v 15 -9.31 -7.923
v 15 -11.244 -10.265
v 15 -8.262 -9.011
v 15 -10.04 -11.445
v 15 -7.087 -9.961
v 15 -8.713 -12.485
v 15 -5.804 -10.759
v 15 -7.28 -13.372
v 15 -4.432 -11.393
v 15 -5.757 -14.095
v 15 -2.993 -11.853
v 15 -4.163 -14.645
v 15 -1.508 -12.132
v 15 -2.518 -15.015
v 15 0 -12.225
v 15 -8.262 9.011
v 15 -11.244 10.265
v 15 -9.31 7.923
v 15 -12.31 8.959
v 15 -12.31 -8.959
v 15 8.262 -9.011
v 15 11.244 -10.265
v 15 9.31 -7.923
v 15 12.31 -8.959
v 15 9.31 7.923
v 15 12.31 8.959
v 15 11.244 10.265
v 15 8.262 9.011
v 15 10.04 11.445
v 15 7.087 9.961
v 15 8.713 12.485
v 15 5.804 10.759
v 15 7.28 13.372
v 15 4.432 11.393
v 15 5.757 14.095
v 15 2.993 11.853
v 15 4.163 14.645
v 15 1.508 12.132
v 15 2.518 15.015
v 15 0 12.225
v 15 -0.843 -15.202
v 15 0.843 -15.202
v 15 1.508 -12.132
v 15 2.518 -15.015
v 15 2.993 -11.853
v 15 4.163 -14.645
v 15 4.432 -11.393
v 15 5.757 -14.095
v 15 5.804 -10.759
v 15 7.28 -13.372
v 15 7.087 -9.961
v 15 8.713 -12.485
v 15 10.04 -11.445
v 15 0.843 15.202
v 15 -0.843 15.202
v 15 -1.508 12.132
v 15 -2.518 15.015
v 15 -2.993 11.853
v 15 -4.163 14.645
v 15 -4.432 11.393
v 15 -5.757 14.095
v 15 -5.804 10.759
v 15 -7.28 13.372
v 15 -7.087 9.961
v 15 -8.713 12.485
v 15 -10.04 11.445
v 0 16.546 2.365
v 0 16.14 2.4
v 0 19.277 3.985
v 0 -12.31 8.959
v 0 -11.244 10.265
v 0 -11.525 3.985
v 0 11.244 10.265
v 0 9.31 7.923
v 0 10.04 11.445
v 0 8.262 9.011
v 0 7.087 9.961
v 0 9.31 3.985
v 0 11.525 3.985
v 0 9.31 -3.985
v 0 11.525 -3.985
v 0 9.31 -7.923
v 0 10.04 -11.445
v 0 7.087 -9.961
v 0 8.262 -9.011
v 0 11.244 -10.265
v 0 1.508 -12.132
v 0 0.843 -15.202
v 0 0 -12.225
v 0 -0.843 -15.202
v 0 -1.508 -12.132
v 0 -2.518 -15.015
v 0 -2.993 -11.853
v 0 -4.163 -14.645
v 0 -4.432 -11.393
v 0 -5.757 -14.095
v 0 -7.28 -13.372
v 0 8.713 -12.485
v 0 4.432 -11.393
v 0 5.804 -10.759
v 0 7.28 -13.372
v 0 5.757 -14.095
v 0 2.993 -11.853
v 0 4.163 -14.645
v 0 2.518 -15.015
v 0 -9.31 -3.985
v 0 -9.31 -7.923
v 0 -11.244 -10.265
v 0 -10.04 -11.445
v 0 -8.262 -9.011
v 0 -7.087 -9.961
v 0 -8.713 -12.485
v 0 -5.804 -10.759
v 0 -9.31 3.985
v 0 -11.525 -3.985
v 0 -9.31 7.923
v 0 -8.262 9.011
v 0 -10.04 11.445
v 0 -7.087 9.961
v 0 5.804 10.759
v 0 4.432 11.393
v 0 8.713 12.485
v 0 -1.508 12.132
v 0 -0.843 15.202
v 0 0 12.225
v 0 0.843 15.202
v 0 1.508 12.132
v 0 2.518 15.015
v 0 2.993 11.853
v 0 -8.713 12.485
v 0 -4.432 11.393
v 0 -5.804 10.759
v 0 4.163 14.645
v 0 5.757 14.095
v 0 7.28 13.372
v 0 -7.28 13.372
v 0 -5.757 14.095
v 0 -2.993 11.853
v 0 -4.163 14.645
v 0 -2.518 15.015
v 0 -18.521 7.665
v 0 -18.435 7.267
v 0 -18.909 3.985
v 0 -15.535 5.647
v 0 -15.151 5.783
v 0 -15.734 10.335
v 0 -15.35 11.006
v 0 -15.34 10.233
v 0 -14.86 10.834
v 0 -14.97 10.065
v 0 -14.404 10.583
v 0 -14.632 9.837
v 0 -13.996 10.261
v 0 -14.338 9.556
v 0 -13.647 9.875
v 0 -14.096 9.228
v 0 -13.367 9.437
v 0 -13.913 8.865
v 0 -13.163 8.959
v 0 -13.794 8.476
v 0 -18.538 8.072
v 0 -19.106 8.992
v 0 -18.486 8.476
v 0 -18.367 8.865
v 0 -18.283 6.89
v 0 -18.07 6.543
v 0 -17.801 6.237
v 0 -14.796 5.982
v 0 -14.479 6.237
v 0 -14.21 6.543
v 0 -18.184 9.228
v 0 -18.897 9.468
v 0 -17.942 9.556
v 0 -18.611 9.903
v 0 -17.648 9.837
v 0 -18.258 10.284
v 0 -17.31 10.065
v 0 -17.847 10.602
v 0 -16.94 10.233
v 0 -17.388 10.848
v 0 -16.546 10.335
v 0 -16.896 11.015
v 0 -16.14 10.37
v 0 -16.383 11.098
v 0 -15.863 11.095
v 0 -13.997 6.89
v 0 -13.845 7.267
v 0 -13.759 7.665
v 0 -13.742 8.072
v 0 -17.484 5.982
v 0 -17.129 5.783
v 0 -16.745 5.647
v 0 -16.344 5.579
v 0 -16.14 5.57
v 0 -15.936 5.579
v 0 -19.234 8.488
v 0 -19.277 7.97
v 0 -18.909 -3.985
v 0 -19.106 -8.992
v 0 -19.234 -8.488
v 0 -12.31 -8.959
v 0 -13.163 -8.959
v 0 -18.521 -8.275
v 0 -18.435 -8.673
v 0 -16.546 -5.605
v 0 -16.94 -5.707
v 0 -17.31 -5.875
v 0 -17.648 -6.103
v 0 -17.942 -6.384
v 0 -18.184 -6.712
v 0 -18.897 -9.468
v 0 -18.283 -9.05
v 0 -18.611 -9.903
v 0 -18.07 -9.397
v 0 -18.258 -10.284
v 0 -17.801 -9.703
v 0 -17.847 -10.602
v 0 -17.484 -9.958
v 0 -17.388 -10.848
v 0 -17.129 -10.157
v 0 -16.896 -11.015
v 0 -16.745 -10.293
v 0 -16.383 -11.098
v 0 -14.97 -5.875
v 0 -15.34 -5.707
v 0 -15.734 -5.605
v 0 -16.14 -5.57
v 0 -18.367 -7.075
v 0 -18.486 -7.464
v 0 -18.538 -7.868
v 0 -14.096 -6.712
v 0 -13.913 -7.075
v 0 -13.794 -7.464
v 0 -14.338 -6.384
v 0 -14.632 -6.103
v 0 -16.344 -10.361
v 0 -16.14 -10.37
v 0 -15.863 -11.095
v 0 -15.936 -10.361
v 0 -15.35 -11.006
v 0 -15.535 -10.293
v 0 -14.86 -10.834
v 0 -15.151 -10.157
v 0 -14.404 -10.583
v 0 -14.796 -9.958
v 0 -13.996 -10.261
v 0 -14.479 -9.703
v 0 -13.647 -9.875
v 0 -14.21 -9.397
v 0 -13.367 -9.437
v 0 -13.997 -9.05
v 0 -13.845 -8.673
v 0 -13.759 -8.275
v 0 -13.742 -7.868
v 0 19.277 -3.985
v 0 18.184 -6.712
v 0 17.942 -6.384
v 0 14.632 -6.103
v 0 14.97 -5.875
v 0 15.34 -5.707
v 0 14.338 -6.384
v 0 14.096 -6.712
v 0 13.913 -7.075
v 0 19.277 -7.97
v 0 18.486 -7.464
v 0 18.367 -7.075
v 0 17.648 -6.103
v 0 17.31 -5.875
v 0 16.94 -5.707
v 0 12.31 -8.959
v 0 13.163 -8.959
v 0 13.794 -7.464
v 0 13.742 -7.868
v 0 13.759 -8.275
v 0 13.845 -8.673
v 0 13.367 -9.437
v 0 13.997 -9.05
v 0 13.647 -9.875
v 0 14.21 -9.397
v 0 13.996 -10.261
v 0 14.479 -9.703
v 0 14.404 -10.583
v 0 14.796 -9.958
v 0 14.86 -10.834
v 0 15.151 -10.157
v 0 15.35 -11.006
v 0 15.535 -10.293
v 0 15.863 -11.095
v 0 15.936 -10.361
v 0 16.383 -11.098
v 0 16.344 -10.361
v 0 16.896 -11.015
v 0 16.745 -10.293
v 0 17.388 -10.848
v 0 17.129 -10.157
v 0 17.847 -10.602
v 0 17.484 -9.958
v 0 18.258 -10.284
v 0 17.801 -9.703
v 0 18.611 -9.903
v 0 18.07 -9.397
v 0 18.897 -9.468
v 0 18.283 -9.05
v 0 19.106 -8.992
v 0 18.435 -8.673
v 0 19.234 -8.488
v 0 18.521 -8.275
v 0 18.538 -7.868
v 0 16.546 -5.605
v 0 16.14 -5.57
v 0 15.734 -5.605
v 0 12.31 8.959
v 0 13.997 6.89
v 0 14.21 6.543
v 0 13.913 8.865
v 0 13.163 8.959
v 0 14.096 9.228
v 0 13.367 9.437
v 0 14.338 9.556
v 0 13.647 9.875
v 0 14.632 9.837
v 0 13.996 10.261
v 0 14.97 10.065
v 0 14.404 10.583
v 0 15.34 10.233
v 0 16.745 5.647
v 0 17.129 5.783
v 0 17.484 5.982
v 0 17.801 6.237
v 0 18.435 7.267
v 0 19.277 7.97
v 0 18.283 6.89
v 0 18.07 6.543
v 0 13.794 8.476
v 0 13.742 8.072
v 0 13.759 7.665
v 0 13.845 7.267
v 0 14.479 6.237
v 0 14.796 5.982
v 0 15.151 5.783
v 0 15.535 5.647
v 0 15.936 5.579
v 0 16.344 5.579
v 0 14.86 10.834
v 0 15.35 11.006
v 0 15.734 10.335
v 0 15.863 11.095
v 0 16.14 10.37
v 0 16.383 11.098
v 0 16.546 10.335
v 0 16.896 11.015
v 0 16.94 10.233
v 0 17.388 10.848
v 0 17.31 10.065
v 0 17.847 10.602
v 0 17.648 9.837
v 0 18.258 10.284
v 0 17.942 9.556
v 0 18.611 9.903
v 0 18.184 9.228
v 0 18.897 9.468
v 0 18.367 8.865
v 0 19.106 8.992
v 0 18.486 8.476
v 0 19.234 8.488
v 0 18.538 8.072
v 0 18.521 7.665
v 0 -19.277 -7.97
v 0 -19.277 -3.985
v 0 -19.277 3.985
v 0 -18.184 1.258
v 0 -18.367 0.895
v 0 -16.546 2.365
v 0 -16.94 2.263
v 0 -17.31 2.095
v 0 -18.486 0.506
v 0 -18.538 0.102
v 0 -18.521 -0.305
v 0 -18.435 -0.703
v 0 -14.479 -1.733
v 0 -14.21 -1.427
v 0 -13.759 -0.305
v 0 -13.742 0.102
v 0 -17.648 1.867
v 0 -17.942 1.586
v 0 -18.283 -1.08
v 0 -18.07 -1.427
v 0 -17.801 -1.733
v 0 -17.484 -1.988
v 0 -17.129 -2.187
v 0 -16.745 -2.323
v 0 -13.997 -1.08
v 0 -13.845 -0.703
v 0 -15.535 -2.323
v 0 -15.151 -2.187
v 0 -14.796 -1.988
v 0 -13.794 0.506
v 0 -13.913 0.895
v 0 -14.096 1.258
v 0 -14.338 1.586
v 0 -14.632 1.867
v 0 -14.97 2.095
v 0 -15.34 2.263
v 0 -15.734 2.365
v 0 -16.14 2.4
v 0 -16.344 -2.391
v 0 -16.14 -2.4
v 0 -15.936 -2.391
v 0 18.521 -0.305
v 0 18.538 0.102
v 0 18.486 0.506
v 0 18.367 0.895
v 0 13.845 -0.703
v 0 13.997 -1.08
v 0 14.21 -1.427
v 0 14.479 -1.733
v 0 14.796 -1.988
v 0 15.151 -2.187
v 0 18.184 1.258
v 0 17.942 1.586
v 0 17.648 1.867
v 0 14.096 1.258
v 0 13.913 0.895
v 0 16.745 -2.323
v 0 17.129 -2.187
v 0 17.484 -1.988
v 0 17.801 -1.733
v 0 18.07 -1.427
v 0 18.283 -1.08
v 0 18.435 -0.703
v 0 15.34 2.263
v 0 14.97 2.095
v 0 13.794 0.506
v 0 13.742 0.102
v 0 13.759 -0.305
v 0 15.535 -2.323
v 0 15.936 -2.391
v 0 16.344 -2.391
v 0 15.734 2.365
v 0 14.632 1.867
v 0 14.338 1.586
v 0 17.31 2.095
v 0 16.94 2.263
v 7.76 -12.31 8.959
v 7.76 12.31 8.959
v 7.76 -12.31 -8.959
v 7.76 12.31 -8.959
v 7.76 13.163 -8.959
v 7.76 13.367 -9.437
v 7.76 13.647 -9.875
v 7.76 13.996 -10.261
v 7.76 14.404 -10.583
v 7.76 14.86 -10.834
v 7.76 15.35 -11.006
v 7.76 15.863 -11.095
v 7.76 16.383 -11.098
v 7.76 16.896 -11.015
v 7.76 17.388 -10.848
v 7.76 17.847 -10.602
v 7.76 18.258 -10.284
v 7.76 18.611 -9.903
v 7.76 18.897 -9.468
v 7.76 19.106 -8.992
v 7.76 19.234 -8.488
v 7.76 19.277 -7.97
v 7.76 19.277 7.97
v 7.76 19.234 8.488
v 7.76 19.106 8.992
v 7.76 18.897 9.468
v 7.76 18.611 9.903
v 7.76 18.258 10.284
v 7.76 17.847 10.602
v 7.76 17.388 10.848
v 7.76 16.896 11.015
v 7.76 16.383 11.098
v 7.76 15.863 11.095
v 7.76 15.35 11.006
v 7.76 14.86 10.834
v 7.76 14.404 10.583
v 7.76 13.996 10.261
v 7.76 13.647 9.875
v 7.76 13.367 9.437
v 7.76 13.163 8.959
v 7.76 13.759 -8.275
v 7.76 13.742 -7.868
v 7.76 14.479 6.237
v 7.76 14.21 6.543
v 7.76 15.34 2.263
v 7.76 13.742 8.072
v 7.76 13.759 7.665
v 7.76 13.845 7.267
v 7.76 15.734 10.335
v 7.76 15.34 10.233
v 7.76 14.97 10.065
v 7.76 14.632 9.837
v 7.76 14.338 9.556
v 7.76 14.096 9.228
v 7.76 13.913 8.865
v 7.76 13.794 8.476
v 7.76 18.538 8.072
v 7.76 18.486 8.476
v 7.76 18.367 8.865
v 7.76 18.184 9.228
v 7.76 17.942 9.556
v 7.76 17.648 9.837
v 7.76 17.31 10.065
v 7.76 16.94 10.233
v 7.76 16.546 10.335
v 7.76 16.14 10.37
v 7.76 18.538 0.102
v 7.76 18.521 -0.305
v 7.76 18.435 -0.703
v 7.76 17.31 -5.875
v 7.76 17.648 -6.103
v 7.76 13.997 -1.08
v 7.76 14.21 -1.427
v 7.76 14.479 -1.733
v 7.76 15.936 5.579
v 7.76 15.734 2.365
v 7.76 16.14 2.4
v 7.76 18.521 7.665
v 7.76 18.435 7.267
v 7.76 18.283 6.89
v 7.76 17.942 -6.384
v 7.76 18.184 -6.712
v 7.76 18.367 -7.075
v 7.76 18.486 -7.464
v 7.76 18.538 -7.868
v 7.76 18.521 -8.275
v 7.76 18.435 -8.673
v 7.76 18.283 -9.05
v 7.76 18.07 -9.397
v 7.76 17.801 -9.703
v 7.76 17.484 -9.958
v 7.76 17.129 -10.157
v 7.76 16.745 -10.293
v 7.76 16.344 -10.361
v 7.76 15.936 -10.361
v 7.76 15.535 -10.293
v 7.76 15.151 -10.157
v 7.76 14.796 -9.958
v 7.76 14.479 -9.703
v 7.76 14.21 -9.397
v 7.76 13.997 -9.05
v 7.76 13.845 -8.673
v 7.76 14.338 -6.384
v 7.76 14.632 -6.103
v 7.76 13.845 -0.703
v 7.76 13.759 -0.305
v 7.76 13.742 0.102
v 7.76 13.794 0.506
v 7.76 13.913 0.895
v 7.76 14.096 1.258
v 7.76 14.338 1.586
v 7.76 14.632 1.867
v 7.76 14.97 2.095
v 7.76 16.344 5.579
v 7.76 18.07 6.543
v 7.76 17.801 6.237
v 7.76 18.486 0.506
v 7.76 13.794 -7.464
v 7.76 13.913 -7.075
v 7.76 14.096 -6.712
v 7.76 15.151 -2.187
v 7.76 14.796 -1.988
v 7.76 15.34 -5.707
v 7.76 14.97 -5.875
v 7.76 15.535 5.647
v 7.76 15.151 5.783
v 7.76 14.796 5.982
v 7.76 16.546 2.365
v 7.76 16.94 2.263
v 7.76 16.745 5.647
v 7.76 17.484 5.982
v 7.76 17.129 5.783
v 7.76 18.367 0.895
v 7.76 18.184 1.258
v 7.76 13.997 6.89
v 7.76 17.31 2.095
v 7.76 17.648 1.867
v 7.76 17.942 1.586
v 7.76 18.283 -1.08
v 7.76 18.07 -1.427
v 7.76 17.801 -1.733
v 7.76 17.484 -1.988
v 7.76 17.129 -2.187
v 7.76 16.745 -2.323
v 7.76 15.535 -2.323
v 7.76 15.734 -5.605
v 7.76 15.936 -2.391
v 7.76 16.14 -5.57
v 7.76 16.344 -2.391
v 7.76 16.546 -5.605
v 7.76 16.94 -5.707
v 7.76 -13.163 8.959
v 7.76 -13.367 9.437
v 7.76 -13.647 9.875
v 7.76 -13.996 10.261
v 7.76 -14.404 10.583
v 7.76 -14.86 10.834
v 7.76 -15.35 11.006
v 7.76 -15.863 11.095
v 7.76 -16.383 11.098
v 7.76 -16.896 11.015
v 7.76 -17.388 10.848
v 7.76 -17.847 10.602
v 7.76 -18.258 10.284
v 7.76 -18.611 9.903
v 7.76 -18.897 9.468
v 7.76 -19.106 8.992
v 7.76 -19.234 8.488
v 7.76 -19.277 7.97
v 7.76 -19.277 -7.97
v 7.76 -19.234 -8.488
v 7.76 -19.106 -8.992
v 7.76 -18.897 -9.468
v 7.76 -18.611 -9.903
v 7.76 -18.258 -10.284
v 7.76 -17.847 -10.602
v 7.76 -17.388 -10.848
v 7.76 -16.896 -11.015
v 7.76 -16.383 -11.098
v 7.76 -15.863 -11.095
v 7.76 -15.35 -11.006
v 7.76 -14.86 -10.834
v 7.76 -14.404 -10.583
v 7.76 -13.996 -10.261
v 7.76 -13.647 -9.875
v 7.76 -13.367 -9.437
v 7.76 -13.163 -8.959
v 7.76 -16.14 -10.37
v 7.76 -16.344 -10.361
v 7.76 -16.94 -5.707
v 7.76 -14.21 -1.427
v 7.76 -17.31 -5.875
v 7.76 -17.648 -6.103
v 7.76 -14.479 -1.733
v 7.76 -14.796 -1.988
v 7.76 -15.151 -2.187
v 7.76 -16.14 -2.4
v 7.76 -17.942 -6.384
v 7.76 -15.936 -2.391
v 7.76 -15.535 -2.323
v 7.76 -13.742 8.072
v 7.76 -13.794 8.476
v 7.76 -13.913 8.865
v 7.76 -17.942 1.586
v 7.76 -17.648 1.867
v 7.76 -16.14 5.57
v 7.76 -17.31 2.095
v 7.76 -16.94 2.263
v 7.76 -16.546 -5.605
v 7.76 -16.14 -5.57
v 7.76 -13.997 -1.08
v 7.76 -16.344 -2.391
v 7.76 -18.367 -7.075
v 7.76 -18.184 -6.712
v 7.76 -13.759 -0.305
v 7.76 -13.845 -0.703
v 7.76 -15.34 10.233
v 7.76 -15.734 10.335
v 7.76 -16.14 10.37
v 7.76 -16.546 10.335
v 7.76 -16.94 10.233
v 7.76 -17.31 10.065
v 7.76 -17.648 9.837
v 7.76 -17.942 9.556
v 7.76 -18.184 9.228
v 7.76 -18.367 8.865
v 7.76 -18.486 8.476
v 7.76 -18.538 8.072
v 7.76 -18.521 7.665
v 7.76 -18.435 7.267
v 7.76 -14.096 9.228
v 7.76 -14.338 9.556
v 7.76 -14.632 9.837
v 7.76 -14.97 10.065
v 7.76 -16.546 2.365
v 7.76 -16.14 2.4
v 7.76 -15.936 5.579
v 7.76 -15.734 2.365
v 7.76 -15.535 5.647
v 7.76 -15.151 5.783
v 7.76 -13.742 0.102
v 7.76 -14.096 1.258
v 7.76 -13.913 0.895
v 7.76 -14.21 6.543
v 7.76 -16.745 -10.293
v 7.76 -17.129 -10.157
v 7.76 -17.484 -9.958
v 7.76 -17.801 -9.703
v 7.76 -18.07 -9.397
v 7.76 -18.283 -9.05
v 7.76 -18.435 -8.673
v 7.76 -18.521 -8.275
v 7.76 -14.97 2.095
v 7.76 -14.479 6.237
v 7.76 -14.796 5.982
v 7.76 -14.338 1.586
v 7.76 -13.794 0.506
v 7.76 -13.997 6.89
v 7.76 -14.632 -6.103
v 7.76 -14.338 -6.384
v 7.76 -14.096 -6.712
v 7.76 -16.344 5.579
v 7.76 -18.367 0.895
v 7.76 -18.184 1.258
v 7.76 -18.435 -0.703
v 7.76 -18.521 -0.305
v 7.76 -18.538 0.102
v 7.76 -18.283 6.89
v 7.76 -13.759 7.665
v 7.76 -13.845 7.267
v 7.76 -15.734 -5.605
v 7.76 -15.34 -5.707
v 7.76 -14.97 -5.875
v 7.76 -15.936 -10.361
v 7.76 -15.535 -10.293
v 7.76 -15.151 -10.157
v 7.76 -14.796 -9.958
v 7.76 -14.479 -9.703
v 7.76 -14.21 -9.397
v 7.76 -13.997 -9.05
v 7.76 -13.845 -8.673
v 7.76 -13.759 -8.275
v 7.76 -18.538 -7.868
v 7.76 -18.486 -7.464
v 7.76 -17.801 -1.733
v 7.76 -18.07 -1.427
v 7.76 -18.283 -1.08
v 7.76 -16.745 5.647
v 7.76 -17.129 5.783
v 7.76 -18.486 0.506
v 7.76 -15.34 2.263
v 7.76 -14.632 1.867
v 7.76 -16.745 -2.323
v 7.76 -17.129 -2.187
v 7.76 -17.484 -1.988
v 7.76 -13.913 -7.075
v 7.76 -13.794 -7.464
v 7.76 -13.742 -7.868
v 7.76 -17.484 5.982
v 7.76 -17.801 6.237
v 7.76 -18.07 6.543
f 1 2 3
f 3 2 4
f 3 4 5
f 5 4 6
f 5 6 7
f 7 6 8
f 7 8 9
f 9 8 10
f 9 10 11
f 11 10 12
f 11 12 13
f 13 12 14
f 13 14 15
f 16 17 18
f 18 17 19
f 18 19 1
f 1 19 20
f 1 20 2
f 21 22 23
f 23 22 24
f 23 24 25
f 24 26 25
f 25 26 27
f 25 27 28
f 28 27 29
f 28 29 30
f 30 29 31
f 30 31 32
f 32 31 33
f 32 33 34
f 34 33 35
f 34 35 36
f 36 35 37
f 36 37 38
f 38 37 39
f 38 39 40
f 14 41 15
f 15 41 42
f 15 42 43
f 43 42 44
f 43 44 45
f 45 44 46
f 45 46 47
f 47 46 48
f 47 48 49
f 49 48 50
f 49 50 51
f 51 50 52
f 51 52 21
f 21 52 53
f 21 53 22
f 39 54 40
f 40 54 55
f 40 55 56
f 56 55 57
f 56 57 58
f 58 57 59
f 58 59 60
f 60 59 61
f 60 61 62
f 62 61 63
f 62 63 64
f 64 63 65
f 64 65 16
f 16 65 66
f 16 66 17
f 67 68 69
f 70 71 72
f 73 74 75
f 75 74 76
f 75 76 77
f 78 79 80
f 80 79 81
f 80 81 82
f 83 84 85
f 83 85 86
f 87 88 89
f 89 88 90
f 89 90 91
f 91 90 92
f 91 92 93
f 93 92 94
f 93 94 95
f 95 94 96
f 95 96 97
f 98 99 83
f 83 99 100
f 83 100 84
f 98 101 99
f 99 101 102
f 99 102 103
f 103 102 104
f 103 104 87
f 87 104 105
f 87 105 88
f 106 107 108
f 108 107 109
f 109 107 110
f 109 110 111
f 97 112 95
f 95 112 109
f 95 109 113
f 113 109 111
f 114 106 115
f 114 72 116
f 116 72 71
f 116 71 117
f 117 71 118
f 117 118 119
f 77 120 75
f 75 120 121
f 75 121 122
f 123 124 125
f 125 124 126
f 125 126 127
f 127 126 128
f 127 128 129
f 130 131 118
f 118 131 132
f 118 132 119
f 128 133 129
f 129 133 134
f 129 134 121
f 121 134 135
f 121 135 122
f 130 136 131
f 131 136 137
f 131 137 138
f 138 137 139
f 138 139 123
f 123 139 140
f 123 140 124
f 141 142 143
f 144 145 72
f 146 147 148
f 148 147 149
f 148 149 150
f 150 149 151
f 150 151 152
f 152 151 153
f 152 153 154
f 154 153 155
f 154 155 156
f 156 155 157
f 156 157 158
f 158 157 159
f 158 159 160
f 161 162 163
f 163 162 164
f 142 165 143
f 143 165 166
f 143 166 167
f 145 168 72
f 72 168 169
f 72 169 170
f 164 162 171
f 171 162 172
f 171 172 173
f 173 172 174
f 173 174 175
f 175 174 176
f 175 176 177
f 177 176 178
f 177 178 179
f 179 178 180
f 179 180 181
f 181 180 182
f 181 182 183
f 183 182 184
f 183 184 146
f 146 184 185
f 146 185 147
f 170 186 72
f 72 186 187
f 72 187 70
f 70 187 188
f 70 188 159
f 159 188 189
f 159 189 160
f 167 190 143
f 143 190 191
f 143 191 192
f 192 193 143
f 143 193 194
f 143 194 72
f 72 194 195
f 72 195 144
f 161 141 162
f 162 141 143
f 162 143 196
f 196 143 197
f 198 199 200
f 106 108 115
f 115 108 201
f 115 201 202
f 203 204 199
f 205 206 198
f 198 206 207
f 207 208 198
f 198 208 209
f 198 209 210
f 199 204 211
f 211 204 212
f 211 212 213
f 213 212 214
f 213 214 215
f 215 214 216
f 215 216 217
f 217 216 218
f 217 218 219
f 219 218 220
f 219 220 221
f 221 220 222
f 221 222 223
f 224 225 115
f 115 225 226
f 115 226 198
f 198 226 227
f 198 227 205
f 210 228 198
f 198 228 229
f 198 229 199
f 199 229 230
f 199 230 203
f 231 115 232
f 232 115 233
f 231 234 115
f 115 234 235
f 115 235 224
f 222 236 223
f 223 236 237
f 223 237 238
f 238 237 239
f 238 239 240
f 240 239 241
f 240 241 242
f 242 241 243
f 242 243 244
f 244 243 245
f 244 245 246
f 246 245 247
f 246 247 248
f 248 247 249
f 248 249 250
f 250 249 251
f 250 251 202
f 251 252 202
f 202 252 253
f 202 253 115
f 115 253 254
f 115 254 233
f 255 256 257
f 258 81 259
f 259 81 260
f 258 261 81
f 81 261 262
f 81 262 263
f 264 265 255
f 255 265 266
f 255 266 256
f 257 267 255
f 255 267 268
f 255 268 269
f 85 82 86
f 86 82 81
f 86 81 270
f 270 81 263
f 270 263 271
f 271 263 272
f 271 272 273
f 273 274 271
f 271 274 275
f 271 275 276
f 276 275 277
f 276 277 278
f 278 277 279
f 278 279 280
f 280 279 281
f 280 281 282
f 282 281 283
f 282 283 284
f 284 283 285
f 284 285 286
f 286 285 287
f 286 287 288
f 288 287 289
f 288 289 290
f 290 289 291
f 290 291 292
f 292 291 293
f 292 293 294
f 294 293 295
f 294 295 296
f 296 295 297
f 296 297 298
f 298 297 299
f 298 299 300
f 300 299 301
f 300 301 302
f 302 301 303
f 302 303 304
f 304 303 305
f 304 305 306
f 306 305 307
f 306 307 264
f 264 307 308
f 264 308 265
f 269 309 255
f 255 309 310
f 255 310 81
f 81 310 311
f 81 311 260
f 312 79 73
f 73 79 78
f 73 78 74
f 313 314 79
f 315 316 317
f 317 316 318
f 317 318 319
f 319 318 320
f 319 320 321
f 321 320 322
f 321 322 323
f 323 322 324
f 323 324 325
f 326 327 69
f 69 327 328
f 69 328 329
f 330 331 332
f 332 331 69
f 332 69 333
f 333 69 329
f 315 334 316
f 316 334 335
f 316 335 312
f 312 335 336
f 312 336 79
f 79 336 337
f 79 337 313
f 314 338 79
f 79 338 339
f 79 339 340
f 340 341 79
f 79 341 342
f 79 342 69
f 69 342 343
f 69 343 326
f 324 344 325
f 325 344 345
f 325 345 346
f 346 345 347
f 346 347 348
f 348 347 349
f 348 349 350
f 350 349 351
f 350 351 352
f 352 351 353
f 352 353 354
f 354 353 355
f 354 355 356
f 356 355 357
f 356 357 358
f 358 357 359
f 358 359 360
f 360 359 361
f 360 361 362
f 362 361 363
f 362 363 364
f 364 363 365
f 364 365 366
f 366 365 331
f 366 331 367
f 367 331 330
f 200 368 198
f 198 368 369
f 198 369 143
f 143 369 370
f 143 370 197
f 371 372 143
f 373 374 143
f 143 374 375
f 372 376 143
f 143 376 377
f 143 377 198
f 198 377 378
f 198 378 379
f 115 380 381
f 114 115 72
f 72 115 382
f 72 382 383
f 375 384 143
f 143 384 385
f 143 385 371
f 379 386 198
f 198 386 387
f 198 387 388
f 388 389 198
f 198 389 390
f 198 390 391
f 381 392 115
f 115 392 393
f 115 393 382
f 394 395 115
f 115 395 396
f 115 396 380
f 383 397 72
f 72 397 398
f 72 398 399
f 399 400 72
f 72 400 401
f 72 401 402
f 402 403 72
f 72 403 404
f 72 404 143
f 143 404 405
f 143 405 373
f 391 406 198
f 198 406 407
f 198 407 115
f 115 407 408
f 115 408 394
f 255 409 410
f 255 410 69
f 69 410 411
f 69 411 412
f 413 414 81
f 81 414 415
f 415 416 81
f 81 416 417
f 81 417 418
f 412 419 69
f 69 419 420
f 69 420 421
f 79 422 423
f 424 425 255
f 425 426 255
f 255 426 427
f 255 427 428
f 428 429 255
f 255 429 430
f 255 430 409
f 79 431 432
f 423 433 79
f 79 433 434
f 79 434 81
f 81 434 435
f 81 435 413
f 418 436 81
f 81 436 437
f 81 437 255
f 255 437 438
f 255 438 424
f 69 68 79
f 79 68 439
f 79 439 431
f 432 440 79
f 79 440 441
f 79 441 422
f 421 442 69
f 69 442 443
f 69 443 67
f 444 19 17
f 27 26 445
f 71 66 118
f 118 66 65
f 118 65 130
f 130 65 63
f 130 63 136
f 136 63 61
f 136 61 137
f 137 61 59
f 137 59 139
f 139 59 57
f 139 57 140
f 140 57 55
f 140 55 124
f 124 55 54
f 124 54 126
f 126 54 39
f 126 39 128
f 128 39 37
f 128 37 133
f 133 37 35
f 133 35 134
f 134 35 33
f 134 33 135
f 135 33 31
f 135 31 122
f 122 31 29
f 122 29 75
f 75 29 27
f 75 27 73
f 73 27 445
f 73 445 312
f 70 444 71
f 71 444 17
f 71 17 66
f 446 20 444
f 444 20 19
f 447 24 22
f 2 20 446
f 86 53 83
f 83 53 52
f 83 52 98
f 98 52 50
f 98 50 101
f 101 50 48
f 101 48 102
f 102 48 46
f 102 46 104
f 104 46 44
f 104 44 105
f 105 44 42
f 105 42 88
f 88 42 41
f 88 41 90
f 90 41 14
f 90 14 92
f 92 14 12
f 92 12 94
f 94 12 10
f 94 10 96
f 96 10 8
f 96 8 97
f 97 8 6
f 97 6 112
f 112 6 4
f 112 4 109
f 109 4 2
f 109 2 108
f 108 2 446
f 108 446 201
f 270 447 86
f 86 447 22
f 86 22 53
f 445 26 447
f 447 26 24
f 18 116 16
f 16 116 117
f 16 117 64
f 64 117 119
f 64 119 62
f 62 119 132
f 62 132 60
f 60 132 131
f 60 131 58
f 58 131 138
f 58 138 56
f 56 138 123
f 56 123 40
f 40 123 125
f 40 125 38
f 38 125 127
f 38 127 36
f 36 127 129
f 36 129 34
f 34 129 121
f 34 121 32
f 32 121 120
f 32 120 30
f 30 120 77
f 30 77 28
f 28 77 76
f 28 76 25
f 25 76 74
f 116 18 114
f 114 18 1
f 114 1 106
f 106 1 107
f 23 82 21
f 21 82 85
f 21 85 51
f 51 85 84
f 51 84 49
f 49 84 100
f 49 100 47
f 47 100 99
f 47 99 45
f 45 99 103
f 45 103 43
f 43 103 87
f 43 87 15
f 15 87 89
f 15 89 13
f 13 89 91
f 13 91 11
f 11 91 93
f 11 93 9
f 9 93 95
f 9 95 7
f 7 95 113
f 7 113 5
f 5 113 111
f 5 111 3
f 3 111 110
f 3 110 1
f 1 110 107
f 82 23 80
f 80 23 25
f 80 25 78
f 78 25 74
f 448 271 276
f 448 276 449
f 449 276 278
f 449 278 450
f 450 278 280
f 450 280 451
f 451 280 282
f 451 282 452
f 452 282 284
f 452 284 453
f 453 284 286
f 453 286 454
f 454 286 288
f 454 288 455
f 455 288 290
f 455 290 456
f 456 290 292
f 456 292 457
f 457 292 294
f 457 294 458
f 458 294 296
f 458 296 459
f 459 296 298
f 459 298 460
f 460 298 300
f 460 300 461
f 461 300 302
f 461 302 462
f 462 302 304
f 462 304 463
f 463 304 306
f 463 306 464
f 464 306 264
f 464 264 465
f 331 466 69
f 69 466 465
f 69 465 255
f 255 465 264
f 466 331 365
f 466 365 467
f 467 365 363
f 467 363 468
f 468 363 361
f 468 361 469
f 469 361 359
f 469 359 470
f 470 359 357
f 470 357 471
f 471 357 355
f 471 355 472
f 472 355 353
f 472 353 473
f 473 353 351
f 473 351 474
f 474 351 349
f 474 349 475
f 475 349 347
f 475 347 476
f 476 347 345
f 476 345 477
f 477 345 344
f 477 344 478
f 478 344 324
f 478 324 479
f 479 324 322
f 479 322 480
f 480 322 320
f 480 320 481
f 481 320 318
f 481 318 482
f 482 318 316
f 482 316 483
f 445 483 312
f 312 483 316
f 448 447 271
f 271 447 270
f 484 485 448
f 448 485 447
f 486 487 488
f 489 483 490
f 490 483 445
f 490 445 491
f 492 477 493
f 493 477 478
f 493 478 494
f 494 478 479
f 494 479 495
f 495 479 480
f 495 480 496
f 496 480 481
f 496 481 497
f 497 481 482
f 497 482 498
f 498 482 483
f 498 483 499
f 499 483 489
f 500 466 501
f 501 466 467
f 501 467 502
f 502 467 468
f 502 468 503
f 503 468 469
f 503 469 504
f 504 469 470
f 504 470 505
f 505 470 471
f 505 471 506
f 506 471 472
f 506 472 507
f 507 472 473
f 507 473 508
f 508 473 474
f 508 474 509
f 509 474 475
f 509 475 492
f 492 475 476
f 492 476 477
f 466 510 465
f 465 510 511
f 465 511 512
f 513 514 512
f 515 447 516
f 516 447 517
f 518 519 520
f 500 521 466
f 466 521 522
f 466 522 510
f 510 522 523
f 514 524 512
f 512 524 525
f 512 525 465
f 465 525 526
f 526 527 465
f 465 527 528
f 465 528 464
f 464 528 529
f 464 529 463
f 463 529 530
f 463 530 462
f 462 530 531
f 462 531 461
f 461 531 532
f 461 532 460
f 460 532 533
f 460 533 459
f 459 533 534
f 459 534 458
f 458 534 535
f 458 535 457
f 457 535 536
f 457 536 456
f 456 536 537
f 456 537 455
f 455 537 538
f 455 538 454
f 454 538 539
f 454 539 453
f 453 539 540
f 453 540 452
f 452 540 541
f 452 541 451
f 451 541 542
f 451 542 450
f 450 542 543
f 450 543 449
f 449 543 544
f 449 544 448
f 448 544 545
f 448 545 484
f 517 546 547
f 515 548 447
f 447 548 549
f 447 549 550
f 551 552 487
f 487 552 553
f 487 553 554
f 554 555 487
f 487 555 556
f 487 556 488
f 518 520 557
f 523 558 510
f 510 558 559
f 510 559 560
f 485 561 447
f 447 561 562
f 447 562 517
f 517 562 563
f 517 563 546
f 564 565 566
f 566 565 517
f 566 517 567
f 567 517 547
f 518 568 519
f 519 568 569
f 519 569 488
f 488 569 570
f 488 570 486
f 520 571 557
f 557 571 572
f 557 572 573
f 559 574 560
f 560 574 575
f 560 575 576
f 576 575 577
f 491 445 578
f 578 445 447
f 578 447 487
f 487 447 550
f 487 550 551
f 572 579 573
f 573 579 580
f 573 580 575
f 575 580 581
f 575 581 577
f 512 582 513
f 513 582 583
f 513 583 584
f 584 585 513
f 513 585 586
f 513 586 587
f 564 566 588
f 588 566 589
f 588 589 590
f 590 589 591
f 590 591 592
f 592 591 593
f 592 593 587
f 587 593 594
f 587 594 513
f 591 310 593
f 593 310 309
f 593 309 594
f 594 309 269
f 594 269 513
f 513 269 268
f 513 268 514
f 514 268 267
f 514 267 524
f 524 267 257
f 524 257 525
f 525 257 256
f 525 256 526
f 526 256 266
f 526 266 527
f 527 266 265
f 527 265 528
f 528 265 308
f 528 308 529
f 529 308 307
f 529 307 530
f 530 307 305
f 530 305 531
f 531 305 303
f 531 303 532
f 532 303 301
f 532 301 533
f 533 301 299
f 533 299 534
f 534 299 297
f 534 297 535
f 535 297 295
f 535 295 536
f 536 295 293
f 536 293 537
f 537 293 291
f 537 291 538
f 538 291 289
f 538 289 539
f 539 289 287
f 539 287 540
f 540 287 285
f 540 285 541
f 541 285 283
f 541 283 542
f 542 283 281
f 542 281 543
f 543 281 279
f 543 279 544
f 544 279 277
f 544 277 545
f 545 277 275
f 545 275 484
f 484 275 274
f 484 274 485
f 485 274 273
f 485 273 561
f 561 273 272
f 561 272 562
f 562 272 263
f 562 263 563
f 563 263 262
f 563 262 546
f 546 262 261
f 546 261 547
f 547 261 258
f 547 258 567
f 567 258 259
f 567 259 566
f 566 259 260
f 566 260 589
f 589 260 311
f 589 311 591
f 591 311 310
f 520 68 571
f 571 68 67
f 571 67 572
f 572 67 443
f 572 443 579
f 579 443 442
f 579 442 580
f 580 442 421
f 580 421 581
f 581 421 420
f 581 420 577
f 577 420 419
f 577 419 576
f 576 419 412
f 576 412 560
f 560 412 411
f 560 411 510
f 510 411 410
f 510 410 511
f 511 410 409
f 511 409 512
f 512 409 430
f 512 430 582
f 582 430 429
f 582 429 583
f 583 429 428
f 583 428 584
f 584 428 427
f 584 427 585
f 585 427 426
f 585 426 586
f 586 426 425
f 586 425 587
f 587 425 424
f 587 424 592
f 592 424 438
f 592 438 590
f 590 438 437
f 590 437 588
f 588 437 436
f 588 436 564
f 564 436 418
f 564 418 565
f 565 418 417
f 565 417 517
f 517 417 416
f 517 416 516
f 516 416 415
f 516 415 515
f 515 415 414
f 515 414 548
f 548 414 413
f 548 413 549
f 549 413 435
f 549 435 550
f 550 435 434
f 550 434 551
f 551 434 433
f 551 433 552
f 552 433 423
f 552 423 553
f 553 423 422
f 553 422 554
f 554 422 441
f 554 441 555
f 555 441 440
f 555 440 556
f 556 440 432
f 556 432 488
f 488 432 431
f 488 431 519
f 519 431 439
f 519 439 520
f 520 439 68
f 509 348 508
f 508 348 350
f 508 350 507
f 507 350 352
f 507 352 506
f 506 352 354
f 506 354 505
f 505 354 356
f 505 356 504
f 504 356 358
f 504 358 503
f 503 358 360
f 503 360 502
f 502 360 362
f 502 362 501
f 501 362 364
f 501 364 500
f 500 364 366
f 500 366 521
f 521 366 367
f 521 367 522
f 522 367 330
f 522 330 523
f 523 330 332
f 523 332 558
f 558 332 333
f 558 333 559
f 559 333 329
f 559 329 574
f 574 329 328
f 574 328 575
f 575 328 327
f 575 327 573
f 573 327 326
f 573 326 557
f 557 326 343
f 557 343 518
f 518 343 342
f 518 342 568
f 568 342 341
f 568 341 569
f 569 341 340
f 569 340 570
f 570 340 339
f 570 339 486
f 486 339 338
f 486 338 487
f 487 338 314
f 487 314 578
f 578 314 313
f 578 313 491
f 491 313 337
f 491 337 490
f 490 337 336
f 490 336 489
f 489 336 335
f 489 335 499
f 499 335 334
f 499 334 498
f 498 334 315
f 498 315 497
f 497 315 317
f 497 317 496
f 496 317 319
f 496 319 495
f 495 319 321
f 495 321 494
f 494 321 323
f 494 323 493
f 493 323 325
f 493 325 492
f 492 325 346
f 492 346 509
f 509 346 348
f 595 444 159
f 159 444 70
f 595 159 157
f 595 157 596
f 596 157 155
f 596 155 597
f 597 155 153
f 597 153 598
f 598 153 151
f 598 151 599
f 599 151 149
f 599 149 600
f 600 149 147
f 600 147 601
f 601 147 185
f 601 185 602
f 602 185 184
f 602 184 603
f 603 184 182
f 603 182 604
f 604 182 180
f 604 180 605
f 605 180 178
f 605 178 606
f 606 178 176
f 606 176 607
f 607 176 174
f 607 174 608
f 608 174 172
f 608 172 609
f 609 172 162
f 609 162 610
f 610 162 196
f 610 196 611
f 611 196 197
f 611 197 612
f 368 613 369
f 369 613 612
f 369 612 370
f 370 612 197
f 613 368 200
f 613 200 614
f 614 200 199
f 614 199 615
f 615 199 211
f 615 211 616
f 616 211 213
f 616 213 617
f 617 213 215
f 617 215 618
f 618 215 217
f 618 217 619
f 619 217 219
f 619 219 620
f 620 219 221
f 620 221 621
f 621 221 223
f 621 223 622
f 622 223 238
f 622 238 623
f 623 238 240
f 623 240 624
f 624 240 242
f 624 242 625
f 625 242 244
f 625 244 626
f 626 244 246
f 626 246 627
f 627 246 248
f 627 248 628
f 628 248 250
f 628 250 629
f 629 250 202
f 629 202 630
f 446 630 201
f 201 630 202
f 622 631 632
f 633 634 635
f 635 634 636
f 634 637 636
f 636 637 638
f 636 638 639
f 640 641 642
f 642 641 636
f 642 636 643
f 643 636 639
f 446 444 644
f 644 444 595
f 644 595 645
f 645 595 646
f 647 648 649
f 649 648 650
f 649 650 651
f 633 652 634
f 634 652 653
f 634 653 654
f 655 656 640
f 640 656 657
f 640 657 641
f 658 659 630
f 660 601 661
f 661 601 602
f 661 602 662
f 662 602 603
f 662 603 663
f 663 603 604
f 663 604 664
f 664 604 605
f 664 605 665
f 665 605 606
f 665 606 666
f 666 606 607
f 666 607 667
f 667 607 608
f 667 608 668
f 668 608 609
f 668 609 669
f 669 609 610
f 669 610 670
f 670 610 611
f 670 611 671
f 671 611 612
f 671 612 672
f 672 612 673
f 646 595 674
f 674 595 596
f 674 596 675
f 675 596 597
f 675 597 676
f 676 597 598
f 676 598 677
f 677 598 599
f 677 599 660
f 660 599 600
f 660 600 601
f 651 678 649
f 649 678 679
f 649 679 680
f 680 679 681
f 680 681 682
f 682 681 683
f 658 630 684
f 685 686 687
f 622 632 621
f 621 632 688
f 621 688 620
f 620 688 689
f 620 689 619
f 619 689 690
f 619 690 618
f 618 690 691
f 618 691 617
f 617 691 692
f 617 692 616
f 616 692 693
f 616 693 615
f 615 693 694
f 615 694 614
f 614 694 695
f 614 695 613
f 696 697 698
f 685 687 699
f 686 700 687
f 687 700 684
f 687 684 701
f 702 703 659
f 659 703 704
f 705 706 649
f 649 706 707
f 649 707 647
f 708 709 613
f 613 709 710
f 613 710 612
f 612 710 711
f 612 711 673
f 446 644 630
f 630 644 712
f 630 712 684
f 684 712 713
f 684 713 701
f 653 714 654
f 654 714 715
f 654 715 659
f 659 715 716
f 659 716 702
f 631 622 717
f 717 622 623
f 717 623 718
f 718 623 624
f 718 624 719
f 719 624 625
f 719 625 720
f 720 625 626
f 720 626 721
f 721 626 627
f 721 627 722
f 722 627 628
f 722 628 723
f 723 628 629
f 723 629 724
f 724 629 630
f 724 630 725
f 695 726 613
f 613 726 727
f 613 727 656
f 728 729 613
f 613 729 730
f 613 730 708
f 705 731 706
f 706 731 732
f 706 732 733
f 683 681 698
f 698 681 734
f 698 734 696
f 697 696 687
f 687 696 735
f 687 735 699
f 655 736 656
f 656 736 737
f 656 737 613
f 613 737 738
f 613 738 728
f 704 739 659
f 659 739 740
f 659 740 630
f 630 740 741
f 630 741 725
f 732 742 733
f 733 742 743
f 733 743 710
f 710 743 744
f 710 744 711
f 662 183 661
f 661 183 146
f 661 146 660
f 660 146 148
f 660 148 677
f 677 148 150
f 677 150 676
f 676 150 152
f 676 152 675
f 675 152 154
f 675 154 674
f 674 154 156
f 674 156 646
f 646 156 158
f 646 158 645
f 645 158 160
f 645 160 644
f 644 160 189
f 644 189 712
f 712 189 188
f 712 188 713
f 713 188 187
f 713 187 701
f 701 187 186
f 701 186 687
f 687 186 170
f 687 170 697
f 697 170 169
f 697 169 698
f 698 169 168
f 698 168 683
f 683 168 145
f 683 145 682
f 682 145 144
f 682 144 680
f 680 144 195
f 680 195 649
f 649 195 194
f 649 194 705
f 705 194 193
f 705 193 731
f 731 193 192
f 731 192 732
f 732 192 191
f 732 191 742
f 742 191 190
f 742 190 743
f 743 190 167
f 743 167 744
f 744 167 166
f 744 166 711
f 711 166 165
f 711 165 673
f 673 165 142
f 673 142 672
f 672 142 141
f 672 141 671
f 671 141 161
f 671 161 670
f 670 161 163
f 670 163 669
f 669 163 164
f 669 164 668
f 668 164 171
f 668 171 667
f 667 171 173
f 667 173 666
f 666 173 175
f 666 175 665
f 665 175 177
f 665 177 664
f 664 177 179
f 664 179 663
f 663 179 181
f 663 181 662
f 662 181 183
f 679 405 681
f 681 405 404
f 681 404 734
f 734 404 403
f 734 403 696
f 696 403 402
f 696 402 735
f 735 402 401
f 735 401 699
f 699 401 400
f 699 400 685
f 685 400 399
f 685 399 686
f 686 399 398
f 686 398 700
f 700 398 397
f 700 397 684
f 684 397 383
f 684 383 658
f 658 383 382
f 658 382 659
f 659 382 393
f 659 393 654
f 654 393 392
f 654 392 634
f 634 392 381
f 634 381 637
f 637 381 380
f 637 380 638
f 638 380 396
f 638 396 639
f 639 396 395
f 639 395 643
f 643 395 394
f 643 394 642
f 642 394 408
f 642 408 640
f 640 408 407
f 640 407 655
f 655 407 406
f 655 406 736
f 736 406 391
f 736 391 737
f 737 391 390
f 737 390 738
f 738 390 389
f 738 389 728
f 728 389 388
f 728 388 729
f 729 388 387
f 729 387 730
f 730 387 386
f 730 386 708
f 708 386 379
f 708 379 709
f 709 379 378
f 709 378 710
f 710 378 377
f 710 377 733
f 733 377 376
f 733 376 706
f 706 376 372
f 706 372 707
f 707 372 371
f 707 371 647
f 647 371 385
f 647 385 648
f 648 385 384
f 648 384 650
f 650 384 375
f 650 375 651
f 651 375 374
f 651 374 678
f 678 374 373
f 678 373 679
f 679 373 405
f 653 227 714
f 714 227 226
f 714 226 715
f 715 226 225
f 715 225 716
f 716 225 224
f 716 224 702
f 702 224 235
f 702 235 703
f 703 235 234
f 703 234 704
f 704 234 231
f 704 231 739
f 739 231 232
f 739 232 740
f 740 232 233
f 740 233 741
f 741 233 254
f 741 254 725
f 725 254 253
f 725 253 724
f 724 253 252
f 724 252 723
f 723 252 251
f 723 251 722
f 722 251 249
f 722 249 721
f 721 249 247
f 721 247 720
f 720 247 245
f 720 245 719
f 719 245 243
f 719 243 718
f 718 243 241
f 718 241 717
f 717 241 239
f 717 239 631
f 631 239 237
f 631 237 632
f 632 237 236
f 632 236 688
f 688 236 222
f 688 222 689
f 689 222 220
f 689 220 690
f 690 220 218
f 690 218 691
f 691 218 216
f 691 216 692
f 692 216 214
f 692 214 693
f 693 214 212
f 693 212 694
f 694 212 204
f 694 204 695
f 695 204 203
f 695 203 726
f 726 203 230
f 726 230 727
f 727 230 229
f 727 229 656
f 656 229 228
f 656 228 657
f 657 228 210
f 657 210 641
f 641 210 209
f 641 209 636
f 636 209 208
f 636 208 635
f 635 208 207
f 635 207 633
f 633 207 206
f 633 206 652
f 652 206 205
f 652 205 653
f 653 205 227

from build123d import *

# Parameters (mm, degrees)
MOTOR_HOLDER_DEPTH = 15
SKETCH2_R          = 2.4
LEGO_MOUNT_DEPTH   = 7.76


with BuildPart() as part:
    # Sketch1 → Motor Holder (new body)
    with BuildSketch(Plane(origin=(0, 0, 0), x_dir=(0, 0, -1), z_dir=(1, 0, 0))):
        with BuildLine():
            Line((-8.959047103, 12.31), (8.959047103, 12.31))
            ThreePointArc((8.959047103, 12.31), (15.225, 0), (8.959047103, -12.31))
            Line((8.959047103, -12.31), (-8.959047103, -12.31))
            ThreePointArc((-8.959047103, -12.31), (-15.225, 0), (-8.959047103, 12.31))
        make_face()
        with BuildLine():
            Line((-7.923037612, 9.31), (7.923037612, 9.31))
            ThreePointArc((7.923037612, 9.31), (12.225, 0), (7.923037612, -9.31))
            Line((7.923037612, -9.31), (-7.923037612, -9.31))
            ThreePointArc((-7.923037612, -9.31), (-12.225, 0), (-7.923037612, 9.31))
        make_face(mode=Mode.SUBTRACT)
    extrude(amount=MOTOR_HOLDER_DEPTH)

    # Sketch2 → Lego Mount (add)
    # profile 1 of 2: a face of its own
    with BuildSketch(Plane.ZY):
        with BuildLine():
            Line((-7.97, 19.277326297), (7.97, 19.277326297))
            ThreePointArc((7.97, 19.277326297), (11.067073538, 16.640950889), (8.959047103, 13.162651831))
            Line((8.959047103, 13.162651831), (8.959047103, 12.31))
            Line((8.959047103, 12.31), (-8.959047103, 12.31))
            Line((-8.959047103, 12.31), (-8.959047103, 13.162651831))
            ThreePointArc((-8.959047103, 13.162651831), (-11.067073538, 16.640950889), (-7.97, 19.277326297))
        make_face()
        with Locations((-7.97, 16.14)):
            Circle(SKETCH2_R, mode=Mode.SUBTRACT)
        with Locations((0, 16.14)):
            Circle(SKETCH2_R, mode=Mode.SUBTRACT)
        with Locations((7.97, 16.14)):
            Circle(SKETCH2_R, mode=Mode.SUBTRACT)
    # profile 2 of 2: a face of its own
    with BuildSketch(Plane.ZY):
        with BuildLine():
            Line((-7.97, -19.277326297), (7.97, -19.277326297))
            ThreePointArc((7.97, -19.277326297), (11.067073538, -16.640950889), (8.959047103, -13.162651831))
            Line((8.959047103, -13.162651831), (8.959047103, -12.31))
            Line((8.959047103, -12.31), (-8.959047103, -12.31))
            Line((-8.959047103, -12.31), (-8.959047103, -13.162651831))
            ThreePointArc((-8.959047103, -13.162651831), (-11.067073538, -16.640950889), (-7.97, -19.277326297))
        make_face()
        with Locations(Location((7.97, -16.14, 0), (0, 0, 180))):
            Circle(SKETCH2_R, mode=Mode.SUBTRACT)
        with Locations(Location((0, -16.14, 0), (0, 0, 180))):
            Circle(SKETCH2_R, mode=Mode.SUBTRACT)
        with Locations(Location((-7.97, -16.14, 0), (0, 0, 180))):
            Circle(SKETCH2_R, mode=Mode.SUBTRACT)
    extrude(amount=-LEGO_MOUNT_DEPTH)


solid = part.part
